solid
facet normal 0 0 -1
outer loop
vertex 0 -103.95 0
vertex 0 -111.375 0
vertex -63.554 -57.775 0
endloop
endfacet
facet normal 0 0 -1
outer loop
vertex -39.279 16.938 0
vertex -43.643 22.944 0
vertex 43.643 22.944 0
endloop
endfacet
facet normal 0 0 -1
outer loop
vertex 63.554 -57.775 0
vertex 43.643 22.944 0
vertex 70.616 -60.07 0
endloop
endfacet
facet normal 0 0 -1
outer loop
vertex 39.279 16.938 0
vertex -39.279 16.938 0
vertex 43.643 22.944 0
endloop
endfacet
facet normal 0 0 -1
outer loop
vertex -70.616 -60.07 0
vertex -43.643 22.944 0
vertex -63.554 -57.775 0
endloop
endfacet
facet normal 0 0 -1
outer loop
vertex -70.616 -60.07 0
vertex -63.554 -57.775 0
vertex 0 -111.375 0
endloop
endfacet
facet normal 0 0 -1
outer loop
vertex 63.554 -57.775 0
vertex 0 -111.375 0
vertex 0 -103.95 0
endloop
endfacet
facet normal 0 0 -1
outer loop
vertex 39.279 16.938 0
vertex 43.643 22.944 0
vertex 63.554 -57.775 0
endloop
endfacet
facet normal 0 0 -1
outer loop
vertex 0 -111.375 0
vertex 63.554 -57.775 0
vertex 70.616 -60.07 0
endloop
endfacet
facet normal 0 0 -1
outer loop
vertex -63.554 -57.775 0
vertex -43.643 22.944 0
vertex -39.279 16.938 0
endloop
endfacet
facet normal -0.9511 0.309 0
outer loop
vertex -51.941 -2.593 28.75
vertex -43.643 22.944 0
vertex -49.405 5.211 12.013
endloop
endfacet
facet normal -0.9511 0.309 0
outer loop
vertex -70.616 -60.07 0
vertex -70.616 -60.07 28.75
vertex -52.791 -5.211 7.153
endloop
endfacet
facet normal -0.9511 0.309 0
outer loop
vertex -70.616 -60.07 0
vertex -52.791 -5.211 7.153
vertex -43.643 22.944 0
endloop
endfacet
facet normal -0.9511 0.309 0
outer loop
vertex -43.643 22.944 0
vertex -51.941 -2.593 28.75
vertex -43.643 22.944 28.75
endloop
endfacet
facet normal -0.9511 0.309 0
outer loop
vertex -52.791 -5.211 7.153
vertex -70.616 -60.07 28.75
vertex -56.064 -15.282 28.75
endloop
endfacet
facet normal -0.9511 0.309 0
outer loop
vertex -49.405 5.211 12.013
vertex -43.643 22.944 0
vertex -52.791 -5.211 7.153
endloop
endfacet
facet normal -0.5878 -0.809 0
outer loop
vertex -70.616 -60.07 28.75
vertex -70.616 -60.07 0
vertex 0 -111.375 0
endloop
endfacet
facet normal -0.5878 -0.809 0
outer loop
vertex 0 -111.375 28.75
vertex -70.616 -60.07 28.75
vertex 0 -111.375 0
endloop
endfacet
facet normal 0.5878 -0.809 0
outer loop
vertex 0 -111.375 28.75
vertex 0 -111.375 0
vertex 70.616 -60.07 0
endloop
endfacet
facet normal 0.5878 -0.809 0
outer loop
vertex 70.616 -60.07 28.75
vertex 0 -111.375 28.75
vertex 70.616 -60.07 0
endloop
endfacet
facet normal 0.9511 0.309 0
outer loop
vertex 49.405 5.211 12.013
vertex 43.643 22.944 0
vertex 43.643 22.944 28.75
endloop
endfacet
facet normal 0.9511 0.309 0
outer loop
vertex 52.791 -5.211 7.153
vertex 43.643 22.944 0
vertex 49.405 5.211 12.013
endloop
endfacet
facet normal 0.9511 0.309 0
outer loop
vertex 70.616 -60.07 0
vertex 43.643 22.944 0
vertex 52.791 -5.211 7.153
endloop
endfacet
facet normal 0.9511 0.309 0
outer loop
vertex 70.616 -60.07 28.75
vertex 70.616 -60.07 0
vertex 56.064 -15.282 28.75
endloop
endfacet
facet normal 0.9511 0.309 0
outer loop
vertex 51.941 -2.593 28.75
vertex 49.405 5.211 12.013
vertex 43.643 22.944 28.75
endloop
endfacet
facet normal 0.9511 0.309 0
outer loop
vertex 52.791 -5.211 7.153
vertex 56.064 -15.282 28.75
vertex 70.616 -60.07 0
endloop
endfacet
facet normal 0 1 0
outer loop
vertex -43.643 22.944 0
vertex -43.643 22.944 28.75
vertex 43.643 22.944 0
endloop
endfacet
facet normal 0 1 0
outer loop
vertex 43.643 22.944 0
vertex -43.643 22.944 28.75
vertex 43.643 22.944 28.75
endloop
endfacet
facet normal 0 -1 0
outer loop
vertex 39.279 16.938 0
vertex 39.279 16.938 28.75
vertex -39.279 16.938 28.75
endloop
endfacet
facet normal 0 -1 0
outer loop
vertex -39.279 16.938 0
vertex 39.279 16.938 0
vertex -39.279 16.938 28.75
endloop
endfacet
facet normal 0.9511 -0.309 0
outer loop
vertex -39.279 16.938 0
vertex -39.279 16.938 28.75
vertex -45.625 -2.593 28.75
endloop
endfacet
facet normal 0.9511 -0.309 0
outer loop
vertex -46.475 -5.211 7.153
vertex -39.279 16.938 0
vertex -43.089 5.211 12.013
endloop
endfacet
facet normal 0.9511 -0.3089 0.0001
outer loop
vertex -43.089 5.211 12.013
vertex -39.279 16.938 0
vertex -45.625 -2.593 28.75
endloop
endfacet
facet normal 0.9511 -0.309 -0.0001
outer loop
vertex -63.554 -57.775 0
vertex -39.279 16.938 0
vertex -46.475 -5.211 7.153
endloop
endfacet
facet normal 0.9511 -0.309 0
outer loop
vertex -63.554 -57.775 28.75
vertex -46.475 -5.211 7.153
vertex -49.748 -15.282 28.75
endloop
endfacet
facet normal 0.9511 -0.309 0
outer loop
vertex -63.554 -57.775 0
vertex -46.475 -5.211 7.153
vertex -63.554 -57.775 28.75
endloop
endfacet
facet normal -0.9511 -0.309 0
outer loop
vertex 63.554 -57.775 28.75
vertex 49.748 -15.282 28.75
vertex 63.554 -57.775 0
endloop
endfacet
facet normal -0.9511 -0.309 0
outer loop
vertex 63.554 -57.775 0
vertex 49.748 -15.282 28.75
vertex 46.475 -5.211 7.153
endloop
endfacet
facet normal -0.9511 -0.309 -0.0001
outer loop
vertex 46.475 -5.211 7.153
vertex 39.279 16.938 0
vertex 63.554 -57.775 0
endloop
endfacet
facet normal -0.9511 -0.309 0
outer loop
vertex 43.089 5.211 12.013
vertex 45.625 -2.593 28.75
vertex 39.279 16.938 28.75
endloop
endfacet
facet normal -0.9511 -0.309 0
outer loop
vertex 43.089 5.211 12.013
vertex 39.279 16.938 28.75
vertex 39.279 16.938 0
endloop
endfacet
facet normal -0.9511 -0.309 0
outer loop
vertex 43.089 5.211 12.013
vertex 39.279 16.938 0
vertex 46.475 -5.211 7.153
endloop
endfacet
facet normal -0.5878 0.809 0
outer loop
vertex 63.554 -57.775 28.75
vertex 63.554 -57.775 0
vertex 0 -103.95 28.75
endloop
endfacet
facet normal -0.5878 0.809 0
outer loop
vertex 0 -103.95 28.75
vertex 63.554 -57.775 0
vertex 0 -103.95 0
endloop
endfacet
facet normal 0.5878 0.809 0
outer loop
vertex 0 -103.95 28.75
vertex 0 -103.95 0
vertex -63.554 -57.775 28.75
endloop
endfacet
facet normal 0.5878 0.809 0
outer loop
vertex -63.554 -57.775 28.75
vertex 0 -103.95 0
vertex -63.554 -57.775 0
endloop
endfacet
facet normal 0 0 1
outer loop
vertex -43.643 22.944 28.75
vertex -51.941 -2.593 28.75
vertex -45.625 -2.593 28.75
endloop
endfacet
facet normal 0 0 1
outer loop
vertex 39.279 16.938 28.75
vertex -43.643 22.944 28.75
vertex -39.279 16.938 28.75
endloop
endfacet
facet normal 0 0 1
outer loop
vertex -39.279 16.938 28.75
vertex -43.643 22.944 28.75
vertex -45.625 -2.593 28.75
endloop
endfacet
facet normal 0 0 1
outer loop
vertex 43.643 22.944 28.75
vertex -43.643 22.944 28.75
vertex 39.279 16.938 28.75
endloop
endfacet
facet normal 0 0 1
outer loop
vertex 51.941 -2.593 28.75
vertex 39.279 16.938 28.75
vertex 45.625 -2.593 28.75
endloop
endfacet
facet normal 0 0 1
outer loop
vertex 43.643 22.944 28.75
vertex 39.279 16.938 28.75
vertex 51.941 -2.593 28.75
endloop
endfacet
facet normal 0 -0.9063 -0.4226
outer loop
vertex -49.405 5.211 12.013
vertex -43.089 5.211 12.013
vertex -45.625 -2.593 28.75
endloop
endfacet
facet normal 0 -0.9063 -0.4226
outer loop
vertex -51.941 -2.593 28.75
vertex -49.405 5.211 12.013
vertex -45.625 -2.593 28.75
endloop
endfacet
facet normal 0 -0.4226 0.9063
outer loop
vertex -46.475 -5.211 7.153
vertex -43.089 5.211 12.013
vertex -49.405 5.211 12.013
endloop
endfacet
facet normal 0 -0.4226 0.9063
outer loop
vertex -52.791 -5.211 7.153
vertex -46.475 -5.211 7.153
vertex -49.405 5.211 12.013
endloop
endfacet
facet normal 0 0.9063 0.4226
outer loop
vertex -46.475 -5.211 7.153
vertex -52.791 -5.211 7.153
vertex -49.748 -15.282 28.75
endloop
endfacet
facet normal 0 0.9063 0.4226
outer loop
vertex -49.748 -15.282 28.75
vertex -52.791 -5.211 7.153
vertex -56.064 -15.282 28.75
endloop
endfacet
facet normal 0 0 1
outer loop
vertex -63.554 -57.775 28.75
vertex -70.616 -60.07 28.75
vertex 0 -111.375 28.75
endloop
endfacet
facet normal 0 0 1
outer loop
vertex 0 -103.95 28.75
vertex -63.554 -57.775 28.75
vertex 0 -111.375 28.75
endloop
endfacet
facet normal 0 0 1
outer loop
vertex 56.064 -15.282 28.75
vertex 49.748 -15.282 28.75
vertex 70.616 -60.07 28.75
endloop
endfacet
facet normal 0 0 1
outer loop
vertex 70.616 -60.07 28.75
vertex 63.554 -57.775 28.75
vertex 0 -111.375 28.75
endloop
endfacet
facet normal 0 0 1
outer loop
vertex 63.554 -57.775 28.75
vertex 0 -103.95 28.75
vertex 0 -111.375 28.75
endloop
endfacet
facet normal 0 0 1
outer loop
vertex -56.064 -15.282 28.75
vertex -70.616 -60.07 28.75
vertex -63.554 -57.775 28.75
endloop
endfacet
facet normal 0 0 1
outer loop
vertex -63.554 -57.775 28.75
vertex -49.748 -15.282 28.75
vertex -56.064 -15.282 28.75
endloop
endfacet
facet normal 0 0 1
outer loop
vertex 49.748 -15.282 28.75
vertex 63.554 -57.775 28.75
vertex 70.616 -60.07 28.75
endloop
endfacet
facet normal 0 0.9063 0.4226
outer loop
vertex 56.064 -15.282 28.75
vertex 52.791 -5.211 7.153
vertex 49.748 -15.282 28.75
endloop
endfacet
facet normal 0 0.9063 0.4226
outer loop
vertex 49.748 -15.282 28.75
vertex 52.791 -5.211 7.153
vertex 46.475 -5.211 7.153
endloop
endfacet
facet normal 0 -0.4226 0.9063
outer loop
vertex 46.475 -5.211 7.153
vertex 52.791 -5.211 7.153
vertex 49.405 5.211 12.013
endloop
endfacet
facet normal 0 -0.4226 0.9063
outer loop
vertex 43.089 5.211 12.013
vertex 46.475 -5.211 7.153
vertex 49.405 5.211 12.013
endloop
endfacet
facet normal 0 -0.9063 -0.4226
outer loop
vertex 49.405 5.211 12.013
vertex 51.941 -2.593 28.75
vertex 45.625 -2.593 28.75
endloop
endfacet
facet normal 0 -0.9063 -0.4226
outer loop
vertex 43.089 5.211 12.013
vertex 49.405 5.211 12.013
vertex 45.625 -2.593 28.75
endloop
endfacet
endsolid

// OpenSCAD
// Tablet dimensions
tablet_x     = 313;     // Width in stand
tablet_y     =  11.5;   // Thickness of tablet
tablet_z     = 198;     // Height in stand

tablet_angle = 25;      // Angle of tablet in stand

circle_od = tablet_z  * 0.75;	// TODO: Use geometry to calc this
circle_id = circle_od * 0.9;
circle_h  = tablet_y * 2.5;

circle_sides = 5;
$fn=circle_sides;

//	tablet();

difference() {
	circle();
	tablet();
}

module circle() {
	translate( [0, -circle_od/4, circle_h/2] )
	rotate([0,0,-(360/circle_sides)/4])			// Useful for 5 sides only
	difference() {
		cylinder(r=circle_od/2, h=circle_h, center=true);
		cylinder(r=circle_id/2, h=circle_h+1, center=true);
	}
}

// used to subtract from the base
// includes USB and power plugs as well as a channel and hole for the wires
module tablet() {
	translate( [0,0,circle_h/3] )		// Lift the tablet 1/3 of the stand
		rotate( [tablet_angle,0,0] )	// Tip the tablet back
			translate( [0,0,tablet_z/2] )
				cube( [ tablet_x, tablet_y, tablet_z ], center=true );
}
